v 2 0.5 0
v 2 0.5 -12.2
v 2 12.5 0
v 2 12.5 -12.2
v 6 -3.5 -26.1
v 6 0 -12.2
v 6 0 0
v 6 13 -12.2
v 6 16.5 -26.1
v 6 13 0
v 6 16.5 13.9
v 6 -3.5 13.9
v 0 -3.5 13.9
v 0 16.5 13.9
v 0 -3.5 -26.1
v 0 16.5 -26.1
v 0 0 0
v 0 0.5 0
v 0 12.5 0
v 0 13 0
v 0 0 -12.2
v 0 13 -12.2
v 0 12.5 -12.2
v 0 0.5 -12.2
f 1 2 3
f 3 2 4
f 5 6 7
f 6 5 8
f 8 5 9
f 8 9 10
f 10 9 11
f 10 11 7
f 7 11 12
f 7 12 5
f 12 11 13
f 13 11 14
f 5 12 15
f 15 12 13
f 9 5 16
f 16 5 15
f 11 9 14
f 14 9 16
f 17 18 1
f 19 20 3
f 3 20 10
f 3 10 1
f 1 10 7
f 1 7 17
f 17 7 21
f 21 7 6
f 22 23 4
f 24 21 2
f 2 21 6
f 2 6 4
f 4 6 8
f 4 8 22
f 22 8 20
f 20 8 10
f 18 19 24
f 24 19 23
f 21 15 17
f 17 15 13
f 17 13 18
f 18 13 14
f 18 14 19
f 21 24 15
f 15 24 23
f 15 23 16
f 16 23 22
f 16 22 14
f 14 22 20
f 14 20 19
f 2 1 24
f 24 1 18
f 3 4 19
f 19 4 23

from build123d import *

# Parameters (mm, degrees)
SKETCH1_W           = 12.2
SKETCH1_H           = 13
BOSS_EXTRUDE1_DEPTH = 2
SKETCH1_5_W         = 40
SKETCH1_5_H         = 20
SKETCH1_5_W_2       = 12.2
SKETCH1_5_H_2       = 13
BOSS_EXTRUDE4_DEPTH = 6
SKETCH5_W           = 12.2
SKETCH5_H           = 0.5
CUT_EXTRUDE4_DEPTH  = 2


with BuildPart() as part:
    # Sketch1 → Boss-Extrude1 (new body)
    with BuildSketch(Plane(origin=(0, 0, 0), x_dir=(0, 0, -1), z_dir=(1, 0, 0))):
        with Locations((6.1, 6.5)):
            Rectangle(SKETCH1_W, SKETCH1_H)
    extrude(amount=BOSS_EXTRUDE1_DEPTH)

    # Sketch1<5> → Boss-Extrude4 (add)
    with BuildSketch(Plane(origin=(0, 0, 0), x_dir=(0, 0, -1), z_dir=(1, 0, 0))):
        with Locations((6.1, 6.5)):
            Rectangle(SKETCH1_5_W, SKETCH1_5_H)
        with Locations((6.1, 6.5)):
            Rectangle(SKETCH1_5_W_2, SKETCH1_5_H_2, mode=Mode.SUBTRACT)
    extrude(amount=BOSS_EXTRUDE4_DEPTH)

    # Sketch5 → Cut-Extrude4 (cut)
    with BuildSketch(Plane(origin=(2, 0, 0), x_dir=(0, 0, -1), z_dir=(1, 0, 0))):
        with Locations((6.1, 0.25)):
            Rectangle(SKETCH5_W, SKETCH5_H)
        with Locations((6.1, 12.75)):
            Rectangle(SKETCH5_W, SKETCH5_H)
    extrude(amount=-CUT_EXTRUDE4_DEPTH, mode=Mode.SUBTRACT)


solid = part.part
